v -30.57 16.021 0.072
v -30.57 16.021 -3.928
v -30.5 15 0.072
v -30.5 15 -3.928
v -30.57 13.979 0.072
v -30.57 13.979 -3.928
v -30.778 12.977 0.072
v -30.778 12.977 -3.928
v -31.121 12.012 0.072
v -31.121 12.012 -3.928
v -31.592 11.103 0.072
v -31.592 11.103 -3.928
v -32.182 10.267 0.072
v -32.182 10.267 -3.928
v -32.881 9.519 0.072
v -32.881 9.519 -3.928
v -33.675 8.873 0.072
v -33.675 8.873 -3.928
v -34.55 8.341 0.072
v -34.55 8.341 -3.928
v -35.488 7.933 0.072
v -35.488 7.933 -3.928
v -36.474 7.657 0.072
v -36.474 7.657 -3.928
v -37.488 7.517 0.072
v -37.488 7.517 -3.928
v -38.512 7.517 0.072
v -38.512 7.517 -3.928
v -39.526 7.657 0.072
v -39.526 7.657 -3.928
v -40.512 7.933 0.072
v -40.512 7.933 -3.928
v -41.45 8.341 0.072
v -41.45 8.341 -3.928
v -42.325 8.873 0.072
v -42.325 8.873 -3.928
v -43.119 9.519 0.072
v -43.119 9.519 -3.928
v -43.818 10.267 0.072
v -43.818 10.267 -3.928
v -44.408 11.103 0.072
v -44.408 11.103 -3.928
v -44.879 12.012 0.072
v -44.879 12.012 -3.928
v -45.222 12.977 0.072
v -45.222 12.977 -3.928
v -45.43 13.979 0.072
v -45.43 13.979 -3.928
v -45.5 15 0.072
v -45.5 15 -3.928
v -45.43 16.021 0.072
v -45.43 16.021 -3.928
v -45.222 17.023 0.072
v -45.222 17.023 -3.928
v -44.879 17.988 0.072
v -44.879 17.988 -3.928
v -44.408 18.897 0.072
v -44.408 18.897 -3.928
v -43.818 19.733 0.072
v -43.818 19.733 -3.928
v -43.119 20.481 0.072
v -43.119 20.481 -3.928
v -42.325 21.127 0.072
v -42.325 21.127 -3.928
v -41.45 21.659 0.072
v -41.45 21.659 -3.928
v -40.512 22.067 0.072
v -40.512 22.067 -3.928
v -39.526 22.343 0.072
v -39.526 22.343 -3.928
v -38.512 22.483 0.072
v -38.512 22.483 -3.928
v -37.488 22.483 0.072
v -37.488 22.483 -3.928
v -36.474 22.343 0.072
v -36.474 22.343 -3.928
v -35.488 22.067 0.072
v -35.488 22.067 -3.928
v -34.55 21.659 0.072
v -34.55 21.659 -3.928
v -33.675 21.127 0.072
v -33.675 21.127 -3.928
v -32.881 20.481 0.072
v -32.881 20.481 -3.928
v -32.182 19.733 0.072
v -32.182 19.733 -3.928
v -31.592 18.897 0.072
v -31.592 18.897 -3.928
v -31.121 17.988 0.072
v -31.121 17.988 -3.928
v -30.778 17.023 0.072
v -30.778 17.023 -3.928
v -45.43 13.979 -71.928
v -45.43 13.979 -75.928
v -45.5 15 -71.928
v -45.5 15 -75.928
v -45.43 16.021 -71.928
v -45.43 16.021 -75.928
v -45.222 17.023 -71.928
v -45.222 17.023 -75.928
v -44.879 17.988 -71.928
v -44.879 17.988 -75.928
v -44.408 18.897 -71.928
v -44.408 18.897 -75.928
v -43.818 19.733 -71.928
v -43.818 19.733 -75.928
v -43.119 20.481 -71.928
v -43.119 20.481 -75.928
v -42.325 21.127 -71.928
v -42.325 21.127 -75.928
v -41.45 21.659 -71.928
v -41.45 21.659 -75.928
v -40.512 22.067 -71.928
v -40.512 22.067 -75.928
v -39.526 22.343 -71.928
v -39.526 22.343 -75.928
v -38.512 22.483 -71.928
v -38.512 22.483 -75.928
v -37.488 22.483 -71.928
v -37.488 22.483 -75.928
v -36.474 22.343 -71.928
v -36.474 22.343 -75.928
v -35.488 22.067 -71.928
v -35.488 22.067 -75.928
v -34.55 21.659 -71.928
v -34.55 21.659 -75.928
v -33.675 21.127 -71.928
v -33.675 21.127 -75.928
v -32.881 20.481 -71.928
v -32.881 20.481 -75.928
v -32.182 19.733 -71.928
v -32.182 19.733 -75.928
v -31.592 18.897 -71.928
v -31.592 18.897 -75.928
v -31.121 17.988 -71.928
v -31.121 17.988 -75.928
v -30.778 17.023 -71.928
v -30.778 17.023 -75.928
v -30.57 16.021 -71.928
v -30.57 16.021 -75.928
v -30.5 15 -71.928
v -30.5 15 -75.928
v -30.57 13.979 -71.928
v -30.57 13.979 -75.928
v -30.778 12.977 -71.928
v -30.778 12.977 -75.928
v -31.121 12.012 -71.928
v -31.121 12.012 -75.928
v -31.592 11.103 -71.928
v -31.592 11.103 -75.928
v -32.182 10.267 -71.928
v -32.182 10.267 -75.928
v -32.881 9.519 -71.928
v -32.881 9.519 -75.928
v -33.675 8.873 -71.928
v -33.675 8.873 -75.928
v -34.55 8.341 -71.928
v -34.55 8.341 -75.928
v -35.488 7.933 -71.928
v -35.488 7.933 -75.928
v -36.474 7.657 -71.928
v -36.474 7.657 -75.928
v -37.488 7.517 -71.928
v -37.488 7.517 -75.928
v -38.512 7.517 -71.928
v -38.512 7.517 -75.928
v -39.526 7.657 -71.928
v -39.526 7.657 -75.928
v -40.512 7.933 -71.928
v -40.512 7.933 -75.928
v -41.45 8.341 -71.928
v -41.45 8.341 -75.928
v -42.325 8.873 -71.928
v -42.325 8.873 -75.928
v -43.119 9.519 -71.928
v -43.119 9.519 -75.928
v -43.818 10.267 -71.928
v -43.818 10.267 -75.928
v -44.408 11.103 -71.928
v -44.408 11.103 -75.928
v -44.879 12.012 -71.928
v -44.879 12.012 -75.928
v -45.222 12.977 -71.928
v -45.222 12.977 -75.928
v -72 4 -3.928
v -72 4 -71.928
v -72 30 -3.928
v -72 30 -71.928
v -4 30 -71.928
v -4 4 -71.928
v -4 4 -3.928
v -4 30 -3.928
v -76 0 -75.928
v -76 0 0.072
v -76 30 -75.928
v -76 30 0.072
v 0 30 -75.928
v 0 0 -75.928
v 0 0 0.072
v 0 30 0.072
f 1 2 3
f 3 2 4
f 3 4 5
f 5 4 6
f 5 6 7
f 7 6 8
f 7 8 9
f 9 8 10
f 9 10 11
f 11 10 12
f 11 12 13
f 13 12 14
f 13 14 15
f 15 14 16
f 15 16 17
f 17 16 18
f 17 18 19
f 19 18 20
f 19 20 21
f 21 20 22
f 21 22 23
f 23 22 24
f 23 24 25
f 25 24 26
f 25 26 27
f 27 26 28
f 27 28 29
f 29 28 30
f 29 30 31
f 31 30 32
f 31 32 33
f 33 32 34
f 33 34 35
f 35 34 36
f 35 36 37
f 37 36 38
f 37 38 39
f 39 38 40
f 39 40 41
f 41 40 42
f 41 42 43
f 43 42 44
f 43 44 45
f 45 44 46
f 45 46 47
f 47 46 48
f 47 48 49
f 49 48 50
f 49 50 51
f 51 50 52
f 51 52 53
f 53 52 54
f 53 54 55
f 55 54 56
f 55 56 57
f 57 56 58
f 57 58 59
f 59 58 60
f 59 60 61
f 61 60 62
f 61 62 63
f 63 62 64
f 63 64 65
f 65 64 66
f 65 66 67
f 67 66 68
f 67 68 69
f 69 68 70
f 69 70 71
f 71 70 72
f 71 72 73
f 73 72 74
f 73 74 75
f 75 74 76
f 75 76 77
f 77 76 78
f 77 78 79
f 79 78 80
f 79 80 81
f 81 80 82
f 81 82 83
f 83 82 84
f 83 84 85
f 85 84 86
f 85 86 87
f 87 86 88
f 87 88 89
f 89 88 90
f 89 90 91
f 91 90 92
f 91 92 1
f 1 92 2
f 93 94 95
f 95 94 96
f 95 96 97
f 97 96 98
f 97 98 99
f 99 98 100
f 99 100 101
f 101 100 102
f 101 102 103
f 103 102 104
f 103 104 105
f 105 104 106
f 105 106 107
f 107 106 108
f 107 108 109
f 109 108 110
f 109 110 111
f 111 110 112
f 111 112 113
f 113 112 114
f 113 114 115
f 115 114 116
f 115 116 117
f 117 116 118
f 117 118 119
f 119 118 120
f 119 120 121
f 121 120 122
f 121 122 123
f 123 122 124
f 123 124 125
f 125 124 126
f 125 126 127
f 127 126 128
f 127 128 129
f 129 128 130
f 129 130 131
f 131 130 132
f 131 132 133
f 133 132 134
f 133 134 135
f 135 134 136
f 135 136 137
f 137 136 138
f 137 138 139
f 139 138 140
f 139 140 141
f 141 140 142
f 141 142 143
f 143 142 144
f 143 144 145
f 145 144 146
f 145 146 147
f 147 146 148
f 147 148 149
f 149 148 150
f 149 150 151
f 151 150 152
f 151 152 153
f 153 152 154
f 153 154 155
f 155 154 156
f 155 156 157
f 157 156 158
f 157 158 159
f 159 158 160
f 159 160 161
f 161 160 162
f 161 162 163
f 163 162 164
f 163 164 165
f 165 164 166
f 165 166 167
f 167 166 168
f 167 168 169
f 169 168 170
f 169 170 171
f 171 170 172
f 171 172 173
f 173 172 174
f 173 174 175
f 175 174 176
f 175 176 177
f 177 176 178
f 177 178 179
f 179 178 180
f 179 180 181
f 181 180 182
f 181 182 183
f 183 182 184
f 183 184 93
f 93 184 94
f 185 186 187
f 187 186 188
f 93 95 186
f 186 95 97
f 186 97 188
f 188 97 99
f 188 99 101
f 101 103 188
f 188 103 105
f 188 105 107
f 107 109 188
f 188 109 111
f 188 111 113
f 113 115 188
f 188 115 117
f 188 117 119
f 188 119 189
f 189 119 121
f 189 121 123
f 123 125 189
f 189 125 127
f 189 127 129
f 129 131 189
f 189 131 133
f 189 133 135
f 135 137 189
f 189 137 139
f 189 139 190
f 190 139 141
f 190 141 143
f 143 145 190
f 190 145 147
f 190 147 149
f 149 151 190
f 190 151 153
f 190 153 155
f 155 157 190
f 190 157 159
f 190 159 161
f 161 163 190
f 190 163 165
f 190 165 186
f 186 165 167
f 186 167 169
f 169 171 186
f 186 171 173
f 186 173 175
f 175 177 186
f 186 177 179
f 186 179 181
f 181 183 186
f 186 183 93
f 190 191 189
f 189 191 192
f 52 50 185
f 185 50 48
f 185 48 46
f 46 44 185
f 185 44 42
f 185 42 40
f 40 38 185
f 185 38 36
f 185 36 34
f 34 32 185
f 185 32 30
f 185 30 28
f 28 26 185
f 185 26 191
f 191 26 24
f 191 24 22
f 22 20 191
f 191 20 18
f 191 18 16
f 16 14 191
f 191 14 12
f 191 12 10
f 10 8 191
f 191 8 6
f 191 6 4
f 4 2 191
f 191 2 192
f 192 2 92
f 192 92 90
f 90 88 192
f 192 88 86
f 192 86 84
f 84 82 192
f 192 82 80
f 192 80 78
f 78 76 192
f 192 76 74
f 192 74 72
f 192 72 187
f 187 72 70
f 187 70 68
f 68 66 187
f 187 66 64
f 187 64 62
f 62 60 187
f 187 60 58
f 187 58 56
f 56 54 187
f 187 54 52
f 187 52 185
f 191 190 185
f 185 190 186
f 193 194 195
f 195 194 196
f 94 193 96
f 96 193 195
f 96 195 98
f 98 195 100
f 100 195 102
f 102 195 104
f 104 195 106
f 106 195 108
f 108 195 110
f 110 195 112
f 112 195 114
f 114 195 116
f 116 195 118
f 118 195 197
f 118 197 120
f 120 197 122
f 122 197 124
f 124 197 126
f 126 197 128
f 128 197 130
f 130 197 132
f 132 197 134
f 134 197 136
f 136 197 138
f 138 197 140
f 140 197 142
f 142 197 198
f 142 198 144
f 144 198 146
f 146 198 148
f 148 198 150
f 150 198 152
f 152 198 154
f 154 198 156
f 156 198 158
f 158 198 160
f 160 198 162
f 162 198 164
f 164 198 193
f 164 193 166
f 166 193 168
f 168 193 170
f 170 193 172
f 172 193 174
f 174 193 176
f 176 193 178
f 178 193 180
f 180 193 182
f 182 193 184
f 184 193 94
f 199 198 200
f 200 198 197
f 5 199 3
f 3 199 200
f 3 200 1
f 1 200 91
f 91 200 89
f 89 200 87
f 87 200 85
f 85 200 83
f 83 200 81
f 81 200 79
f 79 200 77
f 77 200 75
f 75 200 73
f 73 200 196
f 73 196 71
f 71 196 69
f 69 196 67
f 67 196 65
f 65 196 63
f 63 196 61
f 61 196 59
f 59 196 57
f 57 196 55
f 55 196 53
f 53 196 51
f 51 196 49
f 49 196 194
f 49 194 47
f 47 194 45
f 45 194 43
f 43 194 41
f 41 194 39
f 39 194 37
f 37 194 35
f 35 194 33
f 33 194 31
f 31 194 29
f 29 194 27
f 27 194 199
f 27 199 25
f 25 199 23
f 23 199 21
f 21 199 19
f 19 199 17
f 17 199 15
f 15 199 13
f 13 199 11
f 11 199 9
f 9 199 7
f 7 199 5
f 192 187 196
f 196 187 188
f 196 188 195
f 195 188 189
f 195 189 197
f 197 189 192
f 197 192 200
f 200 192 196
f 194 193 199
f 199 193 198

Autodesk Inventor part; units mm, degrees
ref_plane "YZ Plane" through (0, 0, 0) normal (1, 0, 0) x (0, 1, 0)
ref_plane "XZ Plane" through (0, 0, 0) normal (0, 1, 0) x (-1, 0, 0)
ref_plane "XY Plane" through (0, 0, 0) normal (0, 0, 1) x (1, 0, 0)
sketch "Sketch1" plane through (0, 0, 0) normal (0, 1, 0) x (-1, 0, 0)
  line L0 (76, 0.0718) -> (0, 0.0718)
  line L1 (0, 0.0718) -> (0, -75.9282)
  line L2 (0, -75.9282) -> (76, -75.9282)
  line L3 (76, -75.9282) -> (76, 0.0718)
  point P0 (0, 0)
  dimension "d0" = 76
  dimension "d1" = 76
extrude "Extrusion1" add sketch "Sketch1" along normal blind 30
shell "Shell1" thickness 4 removed faces 1 at (-50.6667, 30, -25.2616)
sketch "Sketch2" plane through (-76, 0, 0.0718) normal (0, 0, 1) x (1, 0, 0)
  line L0 (0, 30) -> (76, 30) projected
  line L1 (38, 30) -> (38, 0)
  line L2 (0, 0) -> (76, 0) projected
  line L3 (0, 0) -> (0, 30) projected
  line L4 (0, 15) -> (76, 15)
  line L5 (76, 0) -> (76, 30) projected
  circle A0 centre (38, 15) radius 7.5
  dimension "d5" = 15
hole "Hole1" at (-38, 15, 0.0718) direction (0, 0, -1) diameter 15 end through all
properties part number "Caja_ampli_antena"
